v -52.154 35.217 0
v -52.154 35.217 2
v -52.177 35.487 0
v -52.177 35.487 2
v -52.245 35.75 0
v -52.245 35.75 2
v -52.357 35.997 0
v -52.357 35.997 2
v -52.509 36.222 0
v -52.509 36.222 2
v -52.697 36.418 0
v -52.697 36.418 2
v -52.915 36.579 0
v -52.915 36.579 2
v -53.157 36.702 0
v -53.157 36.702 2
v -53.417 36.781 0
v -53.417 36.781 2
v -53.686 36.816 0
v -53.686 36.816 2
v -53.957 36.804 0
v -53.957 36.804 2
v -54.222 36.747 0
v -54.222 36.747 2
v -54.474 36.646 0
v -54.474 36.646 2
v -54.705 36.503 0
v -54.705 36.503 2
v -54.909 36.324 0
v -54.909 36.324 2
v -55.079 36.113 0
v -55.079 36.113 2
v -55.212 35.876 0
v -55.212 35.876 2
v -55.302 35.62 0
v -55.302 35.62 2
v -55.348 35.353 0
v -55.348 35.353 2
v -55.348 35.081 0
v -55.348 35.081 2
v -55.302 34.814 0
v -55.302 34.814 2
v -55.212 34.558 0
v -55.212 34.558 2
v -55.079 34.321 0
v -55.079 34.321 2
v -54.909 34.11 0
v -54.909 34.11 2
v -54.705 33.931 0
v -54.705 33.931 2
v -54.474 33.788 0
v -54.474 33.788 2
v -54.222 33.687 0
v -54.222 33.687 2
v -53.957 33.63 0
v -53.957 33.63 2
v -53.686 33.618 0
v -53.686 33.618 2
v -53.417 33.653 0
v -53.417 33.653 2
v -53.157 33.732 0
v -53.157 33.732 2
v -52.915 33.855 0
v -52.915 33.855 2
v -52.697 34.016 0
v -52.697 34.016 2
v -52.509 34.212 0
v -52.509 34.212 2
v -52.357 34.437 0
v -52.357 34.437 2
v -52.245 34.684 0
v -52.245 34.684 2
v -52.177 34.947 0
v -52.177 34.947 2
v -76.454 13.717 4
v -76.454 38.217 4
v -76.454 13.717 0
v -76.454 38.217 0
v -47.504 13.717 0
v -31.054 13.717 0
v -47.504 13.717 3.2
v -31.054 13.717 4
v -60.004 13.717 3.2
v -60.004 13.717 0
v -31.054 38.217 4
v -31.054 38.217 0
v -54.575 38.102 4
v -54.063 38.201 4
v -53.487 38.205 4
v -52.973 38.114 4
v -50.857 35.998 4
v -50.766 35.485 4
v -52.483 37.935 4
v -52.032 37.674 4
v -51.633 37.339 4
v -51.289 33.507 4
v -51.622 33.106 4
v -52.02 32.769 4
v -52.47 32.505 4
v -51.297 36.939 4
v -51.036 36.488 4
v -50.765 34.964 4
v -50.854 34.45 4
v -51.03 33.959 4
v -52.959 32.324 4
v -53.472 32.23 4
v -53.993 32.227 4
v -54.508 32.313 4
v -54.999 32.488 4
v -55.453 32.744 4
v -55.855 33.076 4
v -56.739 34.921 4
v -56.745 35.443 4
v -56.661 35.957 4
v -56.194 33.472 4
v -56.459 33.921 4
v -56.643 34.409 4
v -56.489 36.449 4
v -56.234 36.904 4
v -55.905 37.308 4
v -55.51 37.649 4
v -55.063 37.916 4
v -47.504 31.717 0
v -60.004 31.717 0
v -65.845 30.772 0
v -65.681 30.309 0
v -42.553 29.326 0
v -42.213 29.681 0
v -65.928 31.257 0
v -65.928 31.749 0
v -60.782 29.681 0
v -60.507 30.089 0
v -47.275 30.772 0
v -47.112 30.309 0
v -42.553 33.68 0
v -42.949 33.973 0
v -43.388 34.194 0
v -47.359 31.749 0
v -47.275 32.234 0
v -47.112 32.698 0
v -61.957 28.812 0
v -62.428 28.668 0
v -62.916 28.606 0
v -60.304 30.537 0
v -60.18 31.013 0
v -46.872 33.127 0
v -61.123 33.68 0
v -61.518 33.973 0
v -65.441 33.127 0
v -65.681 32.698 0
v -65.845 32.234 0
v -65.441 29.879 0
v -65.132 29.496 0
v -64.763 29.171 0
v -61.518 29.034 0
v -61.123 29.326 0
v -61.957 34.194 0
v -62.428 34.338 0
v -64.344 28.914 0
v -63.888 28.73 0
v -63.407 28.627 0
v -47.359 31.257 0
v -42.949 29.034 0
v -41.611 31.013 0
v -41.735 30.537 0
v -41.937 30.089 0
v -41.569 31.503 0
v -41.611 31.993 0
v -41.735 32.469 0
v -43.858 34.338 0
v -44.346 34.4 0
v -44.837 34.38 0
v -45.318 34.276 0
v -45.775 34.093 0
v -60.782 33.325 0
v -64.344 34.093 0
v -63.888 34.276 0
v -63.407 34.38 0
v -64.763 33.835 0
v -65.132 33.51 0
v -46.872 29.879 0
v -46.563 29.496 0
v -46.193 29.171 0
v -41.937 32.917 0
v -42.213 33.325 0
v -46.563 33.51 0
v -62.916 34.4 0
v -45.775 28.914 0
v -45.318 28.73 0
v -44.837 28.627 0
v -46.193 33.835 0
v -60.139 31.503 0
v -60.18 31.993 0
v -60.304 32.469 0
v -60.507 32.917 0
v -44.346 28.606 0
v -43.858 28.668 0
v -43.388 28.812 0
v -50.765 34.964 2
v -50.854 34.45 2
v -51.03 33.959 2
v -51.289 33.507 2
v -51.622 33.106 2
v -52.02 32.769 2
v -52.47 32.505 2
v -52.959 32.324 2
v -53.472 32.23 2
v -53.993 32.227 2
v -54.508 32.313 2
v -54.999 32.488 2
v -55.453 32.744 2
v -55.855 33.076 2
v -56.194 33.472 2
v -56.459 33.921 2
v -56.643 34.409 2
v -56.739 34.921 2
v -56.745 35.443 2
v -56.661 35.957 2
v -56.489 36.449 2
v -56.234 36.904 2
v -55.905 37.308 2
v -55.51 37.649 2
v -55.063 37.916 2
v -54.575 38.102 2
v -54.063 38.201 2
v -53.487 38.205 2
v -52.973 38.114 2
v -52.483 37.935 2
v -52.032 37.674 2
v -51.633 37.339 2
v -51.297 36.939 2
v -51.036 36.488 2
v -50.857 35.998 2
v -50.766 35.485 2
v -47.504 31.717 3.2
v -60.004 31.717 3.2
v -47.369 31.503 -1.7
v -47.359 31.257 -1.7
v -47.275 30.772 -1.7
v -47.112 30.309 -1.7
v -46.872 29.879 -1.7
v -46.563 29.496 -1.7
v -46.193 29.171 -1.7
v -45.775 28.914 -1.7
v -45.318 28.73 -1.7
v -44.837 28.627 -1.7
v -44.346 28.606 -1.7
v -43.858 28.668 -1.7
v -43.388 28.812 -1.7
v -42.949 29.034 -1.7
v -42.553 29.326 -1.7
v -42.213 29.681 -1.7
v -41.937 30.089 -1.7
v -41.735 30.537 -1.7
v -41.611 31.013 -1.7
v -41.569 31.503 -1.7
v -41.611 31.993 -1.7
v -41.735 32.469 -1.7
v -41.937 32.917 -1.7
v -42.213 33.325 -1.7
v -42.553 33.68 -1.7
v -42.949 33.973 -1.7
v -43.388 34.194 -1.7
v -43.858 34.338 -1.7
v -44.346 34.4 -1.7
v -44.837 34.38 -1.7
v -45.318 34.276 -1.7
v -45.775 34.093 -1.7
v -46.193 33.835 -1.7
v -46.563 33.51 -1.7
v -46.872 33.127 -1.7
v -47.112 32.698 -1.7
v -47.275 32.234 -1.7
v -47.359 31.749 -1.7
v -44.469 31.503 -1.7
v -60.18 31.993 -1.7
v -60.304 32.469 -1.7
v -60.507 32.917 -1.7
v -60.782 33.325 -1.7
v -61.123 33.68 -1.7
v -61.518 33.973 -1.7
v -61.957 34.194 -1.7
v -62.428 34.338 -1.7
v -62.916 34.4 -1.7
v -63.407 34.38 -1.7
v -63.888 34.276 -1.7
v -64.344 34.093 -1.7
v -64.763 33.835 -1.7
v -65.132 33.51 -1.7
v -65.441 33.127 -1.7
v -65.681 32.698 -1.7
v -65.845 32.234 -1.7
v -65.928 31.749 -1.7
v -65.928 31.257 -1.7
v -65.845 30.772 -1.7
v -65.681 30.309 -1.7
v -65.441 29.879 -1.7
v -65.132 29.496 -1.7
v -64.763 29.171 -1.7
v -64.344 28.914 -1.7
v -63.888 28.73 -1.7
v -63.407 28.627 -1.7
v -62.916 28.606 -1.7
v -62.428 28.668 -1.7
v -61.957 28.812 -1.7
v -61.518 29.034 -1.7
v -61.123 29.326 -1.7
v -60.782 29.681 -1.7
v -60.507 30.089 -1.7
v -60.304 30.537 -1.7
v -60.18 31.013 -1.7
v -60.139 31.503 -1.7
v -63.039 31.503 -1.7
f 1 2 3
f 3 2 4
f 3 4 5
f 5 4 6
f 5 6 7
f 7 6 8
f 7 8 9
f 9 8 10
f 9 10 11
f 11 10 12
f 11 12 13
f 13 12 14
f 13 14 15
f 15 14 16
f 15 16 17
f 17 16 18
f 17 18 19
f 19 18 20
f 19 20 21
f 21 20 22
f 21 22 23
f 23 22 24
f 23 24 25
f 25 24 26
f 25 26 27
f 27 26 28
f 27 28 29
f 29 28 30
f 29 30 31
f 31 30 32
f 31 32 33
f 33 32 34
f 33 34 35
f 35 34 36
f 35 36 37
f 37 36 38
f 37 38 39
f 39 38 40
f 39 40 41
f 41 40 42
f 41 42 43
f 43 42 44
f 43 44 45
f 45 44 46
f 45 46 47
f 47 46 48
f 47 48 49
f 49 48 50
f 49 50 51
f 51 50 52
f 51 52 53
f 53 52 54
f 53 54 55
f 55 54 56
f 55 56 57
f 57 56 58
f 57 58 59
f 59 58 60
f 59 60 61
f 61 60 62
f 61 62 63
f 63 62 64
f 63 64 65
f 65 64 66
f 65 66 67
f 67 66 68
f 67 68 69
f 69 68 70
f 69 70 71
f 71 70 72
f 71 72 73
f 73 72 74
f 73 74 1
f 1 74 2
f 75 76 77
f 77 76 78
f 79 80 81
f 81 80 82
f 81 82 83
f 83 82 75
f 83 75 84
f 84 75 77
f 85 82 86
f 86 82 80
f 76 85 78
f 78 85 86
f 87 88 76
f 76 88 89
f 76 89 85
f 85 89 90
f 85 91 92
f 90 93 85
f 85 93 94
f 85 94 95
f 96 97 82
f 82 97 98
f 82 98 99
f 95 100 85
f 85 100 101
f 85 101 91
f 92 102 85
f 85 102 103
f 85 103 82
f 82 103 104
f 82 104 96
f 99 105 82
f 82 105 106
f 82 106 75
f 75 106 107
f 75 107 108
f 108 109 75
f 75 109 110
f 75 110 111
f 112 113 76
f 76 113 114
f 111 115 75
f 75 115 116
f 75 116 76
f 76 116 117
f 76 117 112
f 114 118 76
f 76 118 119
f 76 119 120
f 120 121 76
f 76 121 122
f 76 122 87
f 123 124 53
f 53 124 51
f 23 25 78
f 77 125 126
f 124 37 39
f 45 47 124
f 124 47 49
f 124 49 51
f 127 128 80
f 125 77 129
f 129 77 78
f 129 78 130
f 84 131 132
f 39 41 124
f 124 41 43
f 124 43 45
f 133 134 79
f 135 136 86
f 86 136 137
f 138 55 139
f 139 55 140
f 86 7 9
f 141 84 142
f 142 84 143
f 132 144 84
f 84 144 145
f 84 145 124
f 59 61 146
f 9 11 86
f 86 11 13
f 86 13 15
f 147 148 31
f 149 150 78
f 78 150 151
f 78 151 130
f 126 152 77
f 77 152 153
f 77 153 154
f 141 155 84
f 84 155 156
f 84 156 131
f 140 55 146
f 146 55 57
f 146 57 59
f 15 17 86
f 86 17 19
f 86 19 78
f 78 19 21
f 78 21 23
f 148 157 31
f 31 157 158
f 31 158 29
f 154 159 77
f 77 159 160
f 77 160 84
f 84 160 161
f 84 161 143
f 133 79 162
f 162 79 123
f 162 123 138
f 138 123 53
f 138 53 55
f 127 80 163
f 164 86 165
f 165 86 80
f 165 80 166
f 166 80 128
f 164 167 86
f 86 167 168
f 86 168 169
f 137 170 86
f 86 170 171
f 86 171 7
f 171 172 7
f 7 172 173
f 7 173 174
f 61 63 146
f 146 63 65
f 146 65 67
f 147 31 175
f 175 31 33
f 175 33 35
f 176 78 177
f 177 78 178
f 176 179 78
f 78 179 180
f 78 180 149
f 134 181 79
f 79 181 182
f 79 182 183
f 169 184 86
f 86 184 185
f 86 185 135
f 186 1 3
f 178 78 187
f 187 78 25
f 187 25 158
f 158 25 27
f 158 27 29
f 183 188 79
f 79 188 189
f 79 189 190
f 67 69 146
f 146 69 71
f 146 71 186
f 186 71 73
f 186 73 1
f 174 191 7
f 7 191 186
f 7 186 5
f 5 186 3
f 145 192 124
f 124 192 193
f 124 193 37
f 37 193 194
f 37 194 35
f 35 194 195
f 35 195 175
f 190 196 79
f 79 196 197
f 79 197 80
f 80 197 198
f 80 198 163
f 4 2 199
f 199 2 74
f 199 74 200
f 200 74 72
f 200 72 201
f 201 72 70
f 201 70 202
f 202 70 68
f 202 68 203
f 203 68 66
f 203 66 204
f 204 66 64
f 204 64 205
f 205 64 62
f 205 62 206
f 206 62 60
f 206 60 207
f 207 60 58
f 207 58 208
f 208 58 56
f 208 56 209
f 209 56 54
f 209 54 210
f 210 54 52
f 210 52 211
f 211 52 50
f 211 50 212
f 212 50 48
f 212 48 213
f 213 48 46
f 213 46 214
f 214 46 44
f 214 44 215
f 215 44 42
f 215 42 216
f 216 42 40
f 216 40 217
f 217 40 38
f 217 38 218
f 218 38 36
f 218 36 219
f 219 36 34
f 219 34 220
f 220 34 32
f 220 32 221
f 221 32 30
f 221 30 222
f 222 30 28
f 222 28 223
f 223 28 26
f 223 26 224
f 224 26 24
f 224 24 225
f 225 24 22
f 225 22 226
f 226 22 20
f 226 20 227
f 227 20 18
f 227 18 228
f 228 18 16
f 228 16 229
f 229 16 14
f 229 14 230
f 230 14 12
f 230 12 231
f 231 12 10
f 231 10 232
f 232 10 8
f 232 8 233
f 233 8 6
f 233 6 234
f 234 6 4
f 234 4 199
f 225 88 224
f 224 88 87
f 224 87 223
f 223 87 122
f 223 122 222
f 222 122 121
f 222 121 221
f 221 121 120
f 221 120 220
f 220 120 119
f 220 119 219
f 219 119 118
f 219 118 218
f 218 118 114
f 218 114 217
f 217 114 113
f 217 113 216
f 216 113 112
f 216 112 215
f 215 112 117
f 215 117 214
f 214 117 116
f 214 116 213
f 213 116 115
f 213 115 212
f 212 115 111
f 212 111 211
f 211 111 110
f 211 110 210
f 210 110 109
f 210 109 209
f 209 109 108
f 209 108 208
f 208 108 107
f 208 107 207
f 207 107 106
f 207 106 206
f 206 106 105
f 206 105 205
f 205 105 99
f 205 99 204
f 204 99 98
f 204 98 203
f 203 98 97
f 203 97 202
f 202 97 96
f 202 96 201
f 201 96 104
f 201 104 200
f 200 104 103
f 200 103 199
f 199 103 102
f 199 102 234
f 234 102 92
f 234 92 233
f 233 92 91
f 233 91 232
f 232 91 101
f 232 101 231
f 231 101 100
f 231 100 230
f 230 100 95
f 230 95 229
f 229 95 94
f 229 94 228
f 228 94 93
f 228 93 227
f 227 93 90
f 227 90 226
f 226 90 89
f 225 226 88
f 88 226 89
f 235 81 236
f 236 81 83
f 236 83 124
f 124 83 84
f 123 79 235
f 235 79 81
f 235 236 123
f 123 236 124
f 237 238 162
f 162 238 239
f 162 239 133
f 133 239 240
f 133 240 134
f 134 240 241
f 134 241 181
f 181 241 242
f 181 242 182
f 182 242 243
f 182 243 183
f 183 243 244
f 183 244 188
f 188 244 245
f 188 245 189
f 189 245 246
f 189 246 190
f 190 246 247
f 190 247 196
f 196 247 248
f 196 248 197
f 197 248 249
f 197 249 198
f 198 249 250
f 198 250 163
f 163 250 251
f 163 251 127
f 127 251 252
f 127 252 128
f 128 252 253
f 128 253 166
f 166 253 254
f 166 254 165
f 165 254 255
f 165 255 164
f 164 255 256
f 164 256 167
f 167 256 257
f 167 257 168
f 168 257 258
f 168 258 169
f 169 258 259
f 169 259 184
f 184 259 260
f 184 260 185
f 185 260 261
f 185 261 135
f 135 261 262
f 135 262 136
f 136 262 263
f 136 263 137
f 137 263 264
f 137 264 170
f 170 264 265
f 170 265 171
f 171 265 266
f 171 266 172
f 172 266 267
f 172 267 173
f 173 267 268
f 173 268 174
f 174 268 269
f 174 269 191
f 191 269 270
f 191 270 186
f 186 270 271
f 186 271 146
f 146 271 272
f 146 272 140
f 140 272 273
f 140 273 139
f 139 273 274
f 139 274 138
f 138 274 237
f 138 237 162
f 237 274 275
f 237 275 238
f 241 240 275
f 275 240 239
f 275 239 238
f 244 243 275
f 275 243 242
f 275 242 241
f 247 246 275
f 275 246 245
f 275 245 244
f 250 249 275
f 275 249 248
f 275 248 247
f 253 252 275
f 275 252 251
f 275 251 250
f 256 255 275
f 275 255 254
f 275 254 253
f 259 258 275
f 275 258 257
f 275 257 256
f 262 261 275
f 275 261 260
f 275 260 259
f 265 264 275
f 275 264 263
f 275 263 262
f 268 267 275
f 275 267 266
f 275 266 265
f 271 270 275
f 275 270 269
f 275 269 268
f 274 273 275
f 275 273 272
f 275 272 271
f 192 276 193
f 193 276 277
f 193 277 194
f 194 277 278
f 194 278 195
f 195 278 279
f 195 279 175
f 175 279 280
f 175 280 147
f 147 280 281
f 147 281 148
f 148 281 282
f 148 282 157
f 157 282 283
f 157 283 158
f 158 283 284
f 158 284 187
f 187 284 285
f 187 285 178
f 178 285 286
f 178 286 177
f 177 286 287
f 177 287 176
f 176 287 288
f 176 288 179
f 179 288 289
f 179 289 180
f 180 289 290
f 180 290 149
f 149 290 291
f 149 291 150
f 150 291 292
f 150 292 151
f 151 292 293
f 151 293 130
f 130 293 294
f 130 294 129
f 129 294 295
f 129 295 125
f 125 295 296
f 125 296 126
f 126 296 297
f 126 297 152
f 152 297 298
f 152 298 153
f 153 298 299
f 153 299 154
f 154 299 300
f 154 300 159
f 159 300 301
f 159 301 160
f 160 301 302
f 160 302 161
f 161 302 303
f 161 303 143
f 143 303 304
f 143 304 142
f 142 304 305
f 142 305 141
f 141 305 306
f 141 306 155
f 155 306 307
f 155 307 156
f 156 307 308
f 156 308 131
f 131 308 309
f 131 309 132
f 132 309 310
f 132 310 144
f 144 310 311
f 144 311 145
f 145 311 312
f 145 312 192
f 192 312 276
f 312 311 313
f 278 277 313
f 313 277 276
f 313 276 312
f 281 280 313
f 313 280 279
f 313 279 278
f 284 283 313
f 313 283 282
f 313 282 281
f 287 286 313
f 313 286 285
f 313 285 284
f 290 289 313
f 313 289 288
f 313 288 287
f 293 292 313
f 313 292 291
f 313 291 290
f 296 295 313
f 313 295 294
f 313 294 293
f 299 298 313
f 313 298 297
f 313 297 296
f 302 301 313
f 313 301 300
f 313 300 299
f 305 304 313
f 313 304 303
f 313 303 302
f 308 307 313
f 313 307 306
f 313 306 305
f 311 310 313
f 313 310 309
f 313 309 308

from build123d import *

# Parameters (mm, degrees)
SKETCH_1_W          = 45.4
SKETCH_1_H          = 24.5
EXTRUDE_1_DEPTH     = 4
SKETCH_2_R          = 1.6
CUT_EXTRUDE_1_DEPTH = 86.567076535
CUT_EXTRUDE_2_DEPTH = 2
SKETCH_4_W          = 12.5
SKETCH_4_H          = 36
CUT_EXTRUDE_3_DEPTH = 3.2
SKETCH_5_R          = 2.9
EXTRUDE_2_DEPTH     = 1.7


with BuildPart() as part:
    # 草图1 → 凸台-拉伸1 (new body)
    with BuildSketch(Plane.XY):
        with Locations((-53.753815265, 25.966995149)):
            Rectangle(SKETCH_1_W, SKETCH_1_H)
    extrude(amount=EXTRUDE_1_DEPTH)

    # 草图2 → 切除-拉伸1 (cut, through all)
    with BuildSketch(Plane.XY.offset(4)):
        with Locations((-53.753815265, 35.216995149)):
            Circle(SKETCH_2_R)
    extrude(amount=-CUT_EXTRUDE_1_DEPTH, mode=Mode.SUBTRACT)

    # 草图3 → 切除-拉伸2 (cut)
    with BuildSketch(Plane.XY.offset(4)):
        with BuildLine():
            Line((-54.063374879, 38.200981215), (-53.486501698, 38.205061992))
            ThreePointArc((-53.486501698, 38.205061992), (-53.732593924, 32.217070207), (-54.063374879, 38.200981215))
        make_face()
    extrude(amount=-CUT_EXTRUDE_2_DEPTH, mode=Mode.SUBTRACT)

    # 草图4 → 切除-拉伸3 (cut)
    with BuildSketch(Plane(origin=(0, 0, 0), x_dir=(-1, 0, 0), z_dir=(0, 0, -1))):
        with Locations((53.753815265, 13.716995149)):
            Rectangle(SKETCH_4_W, SKETCH_4_H)
    extrude(amount=-CUT_EXTRUDE_3_DEPTH, mode=Mode.SUBTRACT)

    # 草图5 → 凸台-拉伸2 (add)
    with BuildSketch(Plane(origin=(0, 0, 0), x_dir=(-1, 0, 0), z_dir=(0, 0, -1))):
        with Locations(Location((44.469048356, 31.503088385, 0), (0, 0, 180))):
            Circle(SKETCH_5_R)
        with Locations(Location((63.038582174, 31.503088385, 0), (0, 0, 180))):
            Circle(SKETCH_5_R)
    extrude(amount=EXTRUDE_2_DEPTH)


solid = part.part
